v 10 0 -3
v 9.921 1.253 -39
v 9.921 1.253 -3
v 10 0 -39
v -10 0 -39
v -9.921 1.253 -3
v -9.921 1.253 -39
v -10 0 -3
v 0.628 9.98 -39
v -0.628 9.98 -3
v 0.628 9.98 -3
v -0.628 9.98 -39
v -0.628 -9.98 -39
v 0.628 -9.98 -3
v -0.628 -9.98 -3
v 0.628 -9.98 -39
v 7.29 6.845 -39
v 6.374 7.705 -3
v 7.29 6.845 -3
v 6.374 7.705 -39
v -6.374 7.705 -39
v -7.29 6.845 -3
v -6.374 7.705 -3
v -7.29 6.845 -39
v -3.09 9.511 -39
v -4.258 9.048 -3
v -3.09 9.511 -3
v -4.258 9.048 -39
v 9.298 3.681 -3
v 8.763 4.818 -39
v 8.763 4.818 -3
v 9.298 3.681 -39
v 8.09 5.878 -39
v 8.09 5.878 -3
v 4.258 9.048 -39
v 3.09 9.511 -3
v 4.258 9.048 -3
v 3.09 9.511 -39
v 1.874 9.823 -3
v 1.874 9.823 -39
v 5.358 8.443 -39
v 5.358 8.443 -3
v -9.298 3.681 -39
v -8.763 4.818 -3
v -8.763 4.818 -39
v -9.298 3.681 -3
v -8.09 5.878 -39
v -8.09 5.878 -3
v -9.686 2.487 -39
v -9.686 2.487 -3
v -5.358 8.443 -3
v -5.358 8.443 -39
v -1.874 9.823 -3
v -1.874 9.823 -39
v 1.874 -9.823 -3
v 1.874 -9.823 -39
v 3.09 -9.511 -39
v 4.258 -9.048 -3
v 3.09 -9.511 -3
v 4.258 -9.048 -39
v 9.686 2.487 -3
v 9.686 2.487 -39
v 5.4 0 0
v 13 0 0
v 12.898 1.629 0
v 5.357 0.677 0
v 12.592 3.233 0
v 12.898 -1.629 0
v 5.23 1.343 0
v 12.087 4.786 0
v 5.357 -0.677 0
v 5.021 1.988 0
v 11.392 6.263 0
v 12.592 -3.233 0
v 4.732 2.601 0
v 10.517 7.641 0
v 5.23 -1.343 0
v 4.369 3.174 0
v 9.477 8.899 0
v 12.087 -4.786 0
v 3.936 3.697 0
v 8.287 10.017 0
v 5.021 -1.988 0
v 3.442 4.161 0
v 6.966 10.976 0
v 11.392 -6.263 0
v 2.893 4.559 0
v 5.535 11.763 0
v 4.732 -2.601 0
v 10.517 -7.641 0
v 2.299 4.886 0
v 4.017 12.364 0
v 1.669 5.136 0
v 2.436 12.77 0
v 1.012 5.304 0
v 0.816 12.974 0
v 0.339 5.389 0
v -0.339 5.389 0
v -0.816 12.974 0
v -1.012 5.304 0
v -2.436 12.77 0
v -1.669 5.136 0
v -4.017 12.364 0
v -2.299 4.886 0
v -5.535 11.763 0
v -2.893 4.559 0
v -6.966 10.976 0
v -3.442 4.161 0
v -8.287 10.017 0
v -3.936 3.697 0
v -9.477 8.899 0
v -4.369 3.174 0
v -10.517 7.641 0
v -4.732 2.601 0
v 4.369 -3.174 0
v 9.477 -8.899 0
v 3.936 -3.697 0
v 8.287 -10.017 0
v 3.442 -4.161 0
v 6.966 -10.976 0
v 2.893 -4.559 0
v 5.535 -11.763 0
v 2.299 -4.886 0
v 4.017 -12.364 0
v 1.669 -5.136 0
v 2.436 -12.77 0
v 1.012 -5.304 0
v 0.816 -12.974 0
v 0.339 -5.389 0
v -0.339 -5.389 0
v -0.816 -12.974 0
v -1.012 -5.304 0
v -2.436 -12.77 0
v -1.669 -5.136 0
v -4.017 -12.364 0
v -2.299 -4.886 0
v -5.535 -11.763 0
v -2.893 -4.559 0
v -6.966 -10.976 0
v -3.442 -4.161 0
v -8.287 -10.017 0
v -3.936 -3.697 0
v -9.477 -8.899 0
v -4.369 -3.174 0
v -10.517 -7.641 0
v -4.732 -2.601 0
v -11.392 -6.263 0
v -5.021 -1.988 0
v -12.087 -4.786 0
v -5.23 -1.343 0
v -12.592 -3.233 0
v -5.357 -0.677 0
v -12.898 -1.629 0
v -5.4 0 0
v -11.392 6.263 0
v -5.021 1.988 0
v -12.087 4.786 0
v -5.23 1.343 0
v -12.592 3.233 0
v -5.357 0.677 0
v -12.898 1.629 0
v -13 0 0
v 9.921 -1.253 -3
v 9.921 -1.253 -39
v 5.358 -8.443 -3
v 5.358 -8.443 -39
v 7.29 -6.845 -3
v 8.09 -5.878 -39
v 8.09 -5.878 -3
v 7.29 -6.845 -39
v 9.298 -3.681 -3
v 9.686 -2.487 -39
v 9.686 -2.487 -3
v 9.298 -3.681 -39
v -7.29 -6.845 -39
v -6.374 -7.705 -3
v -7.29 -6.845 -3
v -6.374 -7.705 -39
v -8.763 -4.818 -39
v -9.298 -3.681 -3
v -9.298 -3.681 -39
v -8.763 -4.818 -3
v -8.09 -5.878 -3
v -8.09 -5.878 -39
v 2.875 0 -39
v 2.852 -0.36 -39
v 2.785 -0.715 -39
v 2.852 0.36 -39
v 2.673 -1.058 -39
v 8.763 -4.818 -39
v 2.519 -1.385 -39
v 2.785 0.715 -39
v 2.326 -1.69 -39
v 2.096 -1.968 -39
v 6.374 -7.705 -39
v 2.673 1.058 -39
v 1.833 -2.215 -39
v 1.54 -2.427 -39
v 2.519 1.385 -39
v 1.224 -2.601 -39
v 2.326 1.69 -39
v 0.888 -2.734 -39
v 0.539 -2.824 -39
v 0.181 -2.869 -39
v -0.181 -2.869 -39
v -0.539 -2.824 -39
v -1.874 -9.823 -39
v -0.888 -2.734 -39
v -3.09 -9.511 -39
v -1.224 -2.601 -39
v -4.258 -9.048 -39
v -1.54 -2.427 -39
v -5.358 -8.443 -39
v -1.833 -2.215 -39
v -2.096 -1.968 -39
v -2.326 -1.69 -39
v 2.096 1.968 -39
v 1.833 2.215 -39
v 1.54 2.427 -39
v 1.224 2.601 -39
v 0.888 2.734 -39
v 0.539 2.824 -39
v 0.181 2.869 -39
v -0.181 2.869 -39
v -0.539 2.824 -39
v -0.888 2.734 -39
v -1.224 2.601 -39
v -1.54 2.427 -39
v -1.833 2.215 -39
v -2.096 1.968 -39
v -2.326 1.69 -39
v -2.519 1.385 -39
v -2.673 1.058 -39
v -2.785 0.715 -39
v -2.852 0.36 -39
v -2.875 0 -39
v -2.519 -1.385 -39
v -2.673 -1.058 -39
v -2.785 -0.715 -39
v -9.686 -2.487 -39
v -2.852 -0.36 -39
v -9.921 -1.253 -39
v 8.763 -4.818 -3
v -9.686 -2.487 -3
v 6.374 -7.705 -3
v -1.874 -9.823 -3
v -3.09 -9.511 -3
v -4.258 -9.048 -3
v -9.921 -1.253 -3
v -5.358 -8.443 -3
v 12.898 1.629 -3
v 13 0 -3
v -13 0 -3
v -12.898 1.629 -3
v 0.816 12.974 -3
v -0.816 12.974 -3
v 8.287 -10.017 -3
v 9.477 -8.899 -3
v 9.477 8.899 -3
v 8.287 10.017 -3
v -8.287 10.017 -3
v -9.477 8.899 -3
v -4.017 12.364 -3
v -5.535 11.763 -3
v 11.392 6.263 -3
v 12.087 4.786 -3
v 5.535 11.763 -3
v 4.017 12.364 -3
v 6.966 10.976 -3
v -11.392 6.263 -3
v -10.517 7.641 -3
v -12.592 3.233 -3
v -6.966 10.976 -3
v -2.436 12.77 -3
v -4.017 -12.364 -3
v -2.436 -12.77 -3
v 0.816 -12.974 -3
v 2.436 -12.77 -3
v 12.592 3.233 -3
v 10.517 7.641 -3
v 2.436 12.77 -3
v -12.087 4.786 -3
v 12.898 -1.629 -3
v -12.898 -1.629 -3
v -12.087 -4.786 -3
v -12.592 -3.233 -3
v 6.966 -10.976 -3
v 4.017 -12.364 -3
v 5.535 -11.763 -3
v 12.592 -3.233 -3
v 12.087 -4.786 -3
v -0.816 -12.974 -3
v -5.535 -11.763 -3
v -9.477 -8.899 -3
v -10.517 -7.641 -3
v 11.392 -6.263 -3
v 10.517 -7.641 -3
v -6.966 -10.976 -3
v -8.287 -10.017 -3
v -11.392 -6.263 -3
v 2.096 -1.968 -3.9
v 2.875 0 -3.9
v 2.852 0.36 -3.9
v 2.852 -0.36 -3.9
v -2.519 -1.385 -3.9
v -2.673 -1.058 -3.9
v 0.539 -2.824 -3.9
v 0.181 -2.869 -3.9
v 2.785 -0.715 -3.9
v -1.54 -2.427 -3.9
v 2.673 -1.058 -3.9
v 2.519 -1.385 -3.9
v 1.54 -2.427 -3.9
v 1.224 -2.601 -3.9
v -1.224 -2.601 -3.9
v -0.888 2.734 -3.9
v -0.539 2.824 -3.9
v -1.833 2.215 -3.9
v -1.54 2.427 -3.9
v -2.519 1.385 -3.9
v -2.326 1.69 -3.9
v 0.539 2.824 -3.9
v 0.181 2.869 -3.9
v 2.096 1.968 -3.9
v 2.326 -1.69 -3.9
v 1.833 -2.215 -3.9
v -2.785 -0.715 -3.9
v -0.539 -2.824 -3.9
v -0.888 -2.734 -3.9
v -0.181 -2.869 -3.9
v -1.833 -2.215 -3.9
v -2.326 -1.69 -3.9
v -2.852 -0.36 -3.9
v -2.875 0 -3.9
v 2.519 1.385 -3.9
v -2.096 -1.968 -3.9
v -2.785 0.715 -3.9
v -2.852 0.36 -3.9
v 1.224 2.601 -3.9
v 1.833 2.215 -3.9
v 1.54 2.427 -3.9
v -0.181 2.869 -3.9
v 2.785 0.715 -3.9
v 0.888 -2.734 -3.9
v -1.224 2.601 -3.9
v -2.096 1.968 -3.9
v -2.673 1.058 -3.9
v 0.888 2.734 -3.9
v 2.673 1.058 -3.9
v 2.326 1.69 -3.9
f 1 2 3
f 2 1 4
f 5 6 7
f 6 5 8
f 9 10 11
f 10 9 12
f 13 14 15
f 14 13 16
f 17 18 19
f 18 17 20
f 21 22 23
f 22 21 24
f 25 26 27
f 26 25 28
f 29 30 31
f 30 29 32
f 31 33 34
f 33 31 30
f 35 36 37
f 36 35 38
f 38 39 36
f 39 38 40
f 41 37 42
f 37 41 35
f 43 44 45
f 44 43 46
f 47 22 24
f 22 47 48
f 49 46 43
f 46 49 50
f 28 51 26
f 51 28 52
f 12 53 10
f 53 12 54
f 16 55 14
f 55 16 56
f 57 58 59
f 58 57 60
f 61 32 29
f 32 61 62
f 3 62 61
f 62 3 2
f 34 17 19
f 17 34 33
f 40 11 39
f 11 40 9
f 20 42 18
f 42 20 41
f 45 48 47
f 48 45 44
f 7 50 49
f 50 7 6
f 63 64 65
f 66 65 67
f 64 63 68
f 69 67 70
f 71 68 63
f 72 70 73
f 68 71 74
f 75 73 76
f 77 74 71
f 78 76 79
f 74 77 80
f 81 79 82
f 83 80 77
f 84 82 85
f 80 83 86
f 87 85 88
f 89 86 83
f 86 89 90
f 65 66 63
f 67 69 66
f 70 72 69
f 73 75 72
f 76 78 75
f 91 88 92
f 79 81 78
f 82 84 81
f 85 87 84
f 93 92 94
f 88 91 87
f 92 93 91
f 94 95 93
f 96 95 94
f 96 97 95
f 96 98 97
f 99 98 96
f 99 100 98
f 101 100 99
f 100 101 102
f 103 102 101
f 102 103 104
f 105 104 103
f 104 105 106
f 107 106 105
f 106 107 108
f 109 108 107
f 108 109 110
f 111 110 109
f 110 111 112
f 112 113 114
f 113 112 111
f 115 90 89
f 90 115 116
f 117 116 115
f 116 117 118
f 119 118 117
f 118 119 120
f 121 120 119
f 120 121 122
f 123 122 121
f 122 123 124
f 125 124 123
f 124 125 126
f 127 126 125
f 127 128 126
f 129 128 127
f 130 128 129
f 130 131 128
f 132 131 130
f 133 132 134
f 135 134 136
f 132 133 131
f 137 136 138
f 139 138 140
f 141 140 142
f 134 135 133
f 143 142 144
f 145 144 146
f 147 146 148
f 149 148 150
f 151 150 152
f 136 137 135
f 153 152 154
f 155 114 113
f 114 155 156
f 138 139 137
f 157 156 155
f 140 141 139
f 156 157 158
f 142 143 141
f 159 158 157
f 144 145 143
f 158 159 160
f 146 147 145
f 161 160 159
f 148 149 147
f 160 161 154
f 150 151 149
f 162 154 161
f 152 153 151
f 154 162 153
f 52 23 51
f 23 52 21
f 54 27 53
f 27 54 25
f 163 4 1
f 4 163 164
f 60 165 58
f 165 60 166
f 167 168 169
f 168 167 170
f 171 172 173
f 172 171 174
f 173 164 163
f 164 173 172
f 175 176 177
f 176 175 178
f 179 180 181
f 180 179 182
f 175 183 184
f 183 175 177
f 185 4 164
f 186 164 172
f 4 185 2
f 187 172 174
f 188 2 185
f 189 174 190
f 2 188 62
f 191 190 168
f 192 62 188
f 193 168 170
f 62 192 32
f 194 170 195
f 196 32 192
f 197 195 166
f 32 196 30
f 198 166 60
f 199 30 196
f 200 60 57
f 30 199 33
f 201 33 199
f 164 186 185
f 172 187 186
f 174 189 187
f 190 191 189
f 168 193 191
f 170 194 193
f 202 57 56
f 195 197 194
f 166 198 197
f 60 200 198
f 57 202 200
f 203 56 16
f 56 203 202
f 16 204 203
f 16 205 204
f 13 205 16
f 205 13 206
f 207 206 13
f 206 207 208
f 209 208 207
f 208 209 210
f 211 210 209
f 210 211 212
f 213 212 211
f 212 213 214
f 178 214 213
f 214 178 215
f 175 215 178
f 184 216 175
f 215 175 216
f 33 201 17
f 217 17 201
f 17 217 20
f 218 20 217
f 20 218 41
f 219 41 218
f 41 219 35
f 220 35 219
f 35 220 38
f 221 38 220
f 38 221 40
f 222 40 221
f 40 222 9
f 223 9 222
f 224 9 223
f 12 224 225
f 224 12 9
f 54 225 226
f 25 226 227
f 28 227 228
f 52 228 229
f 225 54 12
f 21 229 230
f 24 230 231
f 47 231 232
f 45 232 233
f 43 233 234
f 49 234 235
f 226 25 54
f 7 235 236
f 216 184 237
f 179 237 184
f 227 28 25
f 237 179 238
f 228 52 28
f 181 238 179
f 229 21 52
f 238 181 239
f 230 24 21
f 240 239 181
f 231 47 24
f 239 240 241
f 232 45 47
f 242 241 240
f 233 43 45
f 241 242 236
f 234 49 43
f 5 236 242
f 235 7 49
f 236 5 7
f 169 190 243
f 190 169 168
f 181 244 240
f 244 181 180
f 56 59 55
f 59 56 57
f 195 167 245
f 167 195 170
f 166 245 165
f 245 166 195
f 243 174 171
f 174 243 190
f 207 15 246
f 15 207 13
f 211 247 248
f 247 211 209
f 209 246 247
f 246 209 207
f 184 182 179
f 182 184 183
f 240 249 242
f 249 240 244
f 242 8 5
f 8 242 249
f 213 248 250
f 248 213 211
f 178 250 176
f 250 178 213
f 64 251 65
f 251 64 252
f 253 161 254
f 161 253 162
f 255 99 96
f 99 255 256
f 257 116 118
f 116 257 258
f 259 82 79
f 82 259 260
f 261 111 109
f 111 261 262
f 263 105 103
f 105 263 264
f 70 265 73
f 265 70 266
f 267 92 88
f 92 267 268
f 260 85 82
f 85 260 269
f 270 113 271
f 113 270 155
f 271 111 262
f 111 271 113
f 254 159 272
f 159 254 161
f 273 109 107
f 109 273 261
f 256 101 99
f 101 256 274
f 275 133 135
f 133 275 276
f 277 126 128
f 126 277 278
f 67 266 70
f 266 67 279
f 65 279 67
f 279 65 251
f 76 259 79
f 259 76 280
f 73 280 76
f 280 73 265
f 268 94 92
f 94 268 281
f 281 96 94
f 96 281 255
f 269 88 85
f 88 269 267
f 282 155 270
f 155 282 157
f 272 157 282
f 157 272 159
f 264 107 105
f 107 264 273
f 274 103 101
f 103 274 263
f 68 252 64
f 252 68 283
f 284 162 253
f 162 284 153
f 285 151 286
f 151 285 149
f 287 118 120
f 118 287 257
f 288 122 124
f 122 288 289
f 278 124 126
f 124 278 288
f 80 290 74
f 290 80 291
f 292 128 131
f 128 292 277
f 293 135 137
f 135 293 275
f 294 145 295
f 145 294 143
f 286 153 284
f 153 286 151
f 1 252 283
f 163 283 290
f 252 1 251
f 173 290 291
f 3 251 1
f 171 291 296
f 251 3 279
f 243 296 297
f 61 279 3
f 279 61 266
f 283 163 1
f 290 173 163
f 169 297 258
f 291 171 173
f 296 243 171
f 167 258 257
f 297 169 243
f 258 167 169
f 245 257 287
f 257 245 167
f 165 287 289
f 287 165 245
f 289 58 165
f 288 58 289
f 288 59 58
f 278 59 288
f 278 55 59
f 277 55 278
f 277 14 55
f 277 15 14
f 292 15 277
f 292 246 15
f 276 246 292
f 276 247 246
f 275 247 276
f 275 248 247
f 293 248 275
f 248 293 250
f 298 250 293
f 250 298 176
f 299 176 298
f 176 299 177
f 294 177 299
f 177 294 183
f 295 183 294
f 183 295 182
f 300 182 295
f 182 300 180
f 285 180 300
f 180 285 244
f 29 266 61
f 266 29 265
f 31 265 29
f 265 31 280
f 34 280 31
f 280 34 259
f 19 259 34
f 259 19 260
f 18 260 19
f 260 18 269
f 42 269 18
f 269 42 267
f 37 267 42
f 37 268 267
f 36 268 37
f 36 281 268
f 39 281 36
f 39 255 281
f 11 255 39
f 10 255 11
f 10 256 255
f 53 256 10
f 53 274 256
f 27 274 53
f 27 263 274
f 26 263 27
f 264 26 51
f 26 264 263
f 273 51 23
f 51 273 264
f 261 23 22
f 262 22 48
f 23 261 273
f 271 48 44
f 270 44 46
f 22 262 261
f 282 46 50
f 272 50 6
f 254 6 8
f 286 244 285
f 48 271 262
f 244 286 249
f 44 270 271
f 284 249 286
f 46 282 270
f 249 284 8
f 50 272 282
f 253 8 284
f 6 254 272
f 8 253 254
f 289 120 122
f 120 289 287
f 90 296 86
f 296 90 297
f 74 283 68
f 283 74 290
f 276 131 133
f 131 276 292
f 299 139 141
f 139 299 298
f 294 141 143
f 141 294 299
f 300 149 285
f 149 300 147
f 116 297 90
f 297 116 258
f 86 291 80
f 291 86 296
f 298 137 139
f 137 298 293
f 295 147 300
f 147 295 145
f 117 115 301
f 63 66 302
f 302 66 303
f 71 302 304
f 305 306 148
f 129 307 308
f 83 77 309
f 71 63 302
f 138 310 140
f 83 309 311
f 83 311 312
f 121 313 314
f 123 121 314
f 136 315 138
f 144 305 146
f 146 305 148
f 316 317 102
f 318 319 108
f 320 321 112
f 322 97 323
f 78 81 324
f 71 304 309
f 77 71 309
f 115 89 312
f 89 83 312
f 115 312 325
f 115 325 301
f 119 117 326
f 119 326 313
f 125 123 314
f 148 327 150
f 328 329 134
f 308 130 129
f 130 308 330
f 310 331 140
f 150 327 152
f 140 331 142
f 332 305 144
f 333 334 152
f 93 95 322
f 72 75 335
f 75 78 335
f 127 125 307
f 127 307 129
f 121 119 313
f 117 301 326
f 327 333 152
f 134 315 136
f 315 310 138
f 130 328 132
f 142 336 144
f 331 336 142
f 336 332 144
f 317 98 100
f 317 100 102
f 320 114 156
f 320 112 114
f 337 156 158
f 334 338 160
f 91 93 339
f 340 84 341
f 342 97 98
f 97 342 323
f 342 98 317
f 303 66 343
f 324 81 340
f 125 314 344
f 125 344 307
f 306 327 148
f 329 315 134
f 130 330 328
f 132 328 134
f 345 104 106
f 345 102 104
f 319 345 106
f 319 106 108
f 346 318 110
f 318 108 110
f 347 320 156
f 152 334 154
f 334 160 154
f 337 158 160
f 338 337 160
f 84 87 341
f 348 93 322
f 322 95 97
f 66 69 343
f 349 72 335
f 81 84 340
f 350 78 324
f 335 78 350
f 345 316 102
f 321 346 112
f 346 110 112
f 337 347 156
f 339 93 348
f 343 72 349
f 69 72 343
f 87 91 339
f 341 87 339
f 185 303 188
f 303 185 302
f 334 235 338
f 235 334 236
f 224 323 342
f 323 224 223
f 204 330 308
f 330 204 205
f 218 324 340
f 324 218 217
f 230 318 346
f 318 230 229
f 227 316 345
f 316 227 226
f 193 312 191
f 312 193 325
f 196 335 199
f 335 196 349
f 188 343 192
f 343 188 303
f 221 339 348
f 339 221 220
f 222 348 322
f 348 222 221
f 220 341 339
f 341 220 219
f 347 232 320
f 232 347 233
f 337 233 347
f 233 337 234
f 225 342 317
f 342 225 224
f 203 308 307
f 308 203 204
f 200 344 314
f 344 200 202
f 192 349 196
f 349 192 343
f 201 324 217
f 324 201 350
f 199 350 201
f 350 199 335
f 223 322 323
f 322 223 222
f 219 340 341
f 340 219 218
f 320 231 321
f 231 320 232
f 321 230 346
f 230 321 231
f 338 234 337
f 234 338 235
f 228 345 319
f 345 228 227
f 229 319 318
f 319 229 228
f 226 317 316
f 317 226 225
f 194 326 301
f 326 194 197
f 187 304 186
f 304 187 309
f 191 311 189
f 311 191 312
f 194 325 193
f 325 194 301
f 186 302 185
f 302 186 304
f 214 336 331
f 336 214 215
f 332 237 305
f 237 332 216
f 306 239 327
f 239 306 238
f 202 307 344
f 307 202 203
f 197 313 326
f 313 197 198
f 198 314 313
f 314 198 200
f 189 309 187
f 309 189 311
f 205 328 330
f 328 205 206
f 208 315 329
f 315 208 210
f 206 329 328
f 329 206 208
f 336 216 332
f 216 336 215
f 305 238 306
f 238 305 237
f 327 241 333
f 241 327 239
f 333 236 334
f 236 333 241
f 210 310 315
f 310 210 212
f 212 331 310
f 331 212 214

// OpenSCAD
$fn = 50;


difference() {
	union() {
		translate(v = [0, 0, -39.0000000000]) {
			cylinder(h = 39, r = 10.0000000000);
		}
		translate(v = [0, 0, -3.0000000000]) {
			cylinder(h = 3, r = 13.0000000000);
		}
	}
	union() {
		translate(v = [0, 0, 0]) {
			rotate(a = [0, 0, 0]) {
				difference() {
					union() {
						#translate(v = [0, 0, -39.0000000000]) {
							cylinder(h = 39, r = 2.6000000000);
						}
						#translate(v = [0, 0, -3.9000000000]) {
							cylinder(h = 3.9000000000, r = 10.0000000000, r1 = 2.8750000000, r2 = 5.4000000000);
						}
						#translate(v = [0, 0, -39.0000000000]) {
							cylinder(h = 39, r = 2.8750000000);
						}
						#translate(v = [0, 0, -39.0000000000]) {
							cylinder(h = 39, r = 2.6000000000);
						}
					}
					union();
				}
			}
		}
	}
}
